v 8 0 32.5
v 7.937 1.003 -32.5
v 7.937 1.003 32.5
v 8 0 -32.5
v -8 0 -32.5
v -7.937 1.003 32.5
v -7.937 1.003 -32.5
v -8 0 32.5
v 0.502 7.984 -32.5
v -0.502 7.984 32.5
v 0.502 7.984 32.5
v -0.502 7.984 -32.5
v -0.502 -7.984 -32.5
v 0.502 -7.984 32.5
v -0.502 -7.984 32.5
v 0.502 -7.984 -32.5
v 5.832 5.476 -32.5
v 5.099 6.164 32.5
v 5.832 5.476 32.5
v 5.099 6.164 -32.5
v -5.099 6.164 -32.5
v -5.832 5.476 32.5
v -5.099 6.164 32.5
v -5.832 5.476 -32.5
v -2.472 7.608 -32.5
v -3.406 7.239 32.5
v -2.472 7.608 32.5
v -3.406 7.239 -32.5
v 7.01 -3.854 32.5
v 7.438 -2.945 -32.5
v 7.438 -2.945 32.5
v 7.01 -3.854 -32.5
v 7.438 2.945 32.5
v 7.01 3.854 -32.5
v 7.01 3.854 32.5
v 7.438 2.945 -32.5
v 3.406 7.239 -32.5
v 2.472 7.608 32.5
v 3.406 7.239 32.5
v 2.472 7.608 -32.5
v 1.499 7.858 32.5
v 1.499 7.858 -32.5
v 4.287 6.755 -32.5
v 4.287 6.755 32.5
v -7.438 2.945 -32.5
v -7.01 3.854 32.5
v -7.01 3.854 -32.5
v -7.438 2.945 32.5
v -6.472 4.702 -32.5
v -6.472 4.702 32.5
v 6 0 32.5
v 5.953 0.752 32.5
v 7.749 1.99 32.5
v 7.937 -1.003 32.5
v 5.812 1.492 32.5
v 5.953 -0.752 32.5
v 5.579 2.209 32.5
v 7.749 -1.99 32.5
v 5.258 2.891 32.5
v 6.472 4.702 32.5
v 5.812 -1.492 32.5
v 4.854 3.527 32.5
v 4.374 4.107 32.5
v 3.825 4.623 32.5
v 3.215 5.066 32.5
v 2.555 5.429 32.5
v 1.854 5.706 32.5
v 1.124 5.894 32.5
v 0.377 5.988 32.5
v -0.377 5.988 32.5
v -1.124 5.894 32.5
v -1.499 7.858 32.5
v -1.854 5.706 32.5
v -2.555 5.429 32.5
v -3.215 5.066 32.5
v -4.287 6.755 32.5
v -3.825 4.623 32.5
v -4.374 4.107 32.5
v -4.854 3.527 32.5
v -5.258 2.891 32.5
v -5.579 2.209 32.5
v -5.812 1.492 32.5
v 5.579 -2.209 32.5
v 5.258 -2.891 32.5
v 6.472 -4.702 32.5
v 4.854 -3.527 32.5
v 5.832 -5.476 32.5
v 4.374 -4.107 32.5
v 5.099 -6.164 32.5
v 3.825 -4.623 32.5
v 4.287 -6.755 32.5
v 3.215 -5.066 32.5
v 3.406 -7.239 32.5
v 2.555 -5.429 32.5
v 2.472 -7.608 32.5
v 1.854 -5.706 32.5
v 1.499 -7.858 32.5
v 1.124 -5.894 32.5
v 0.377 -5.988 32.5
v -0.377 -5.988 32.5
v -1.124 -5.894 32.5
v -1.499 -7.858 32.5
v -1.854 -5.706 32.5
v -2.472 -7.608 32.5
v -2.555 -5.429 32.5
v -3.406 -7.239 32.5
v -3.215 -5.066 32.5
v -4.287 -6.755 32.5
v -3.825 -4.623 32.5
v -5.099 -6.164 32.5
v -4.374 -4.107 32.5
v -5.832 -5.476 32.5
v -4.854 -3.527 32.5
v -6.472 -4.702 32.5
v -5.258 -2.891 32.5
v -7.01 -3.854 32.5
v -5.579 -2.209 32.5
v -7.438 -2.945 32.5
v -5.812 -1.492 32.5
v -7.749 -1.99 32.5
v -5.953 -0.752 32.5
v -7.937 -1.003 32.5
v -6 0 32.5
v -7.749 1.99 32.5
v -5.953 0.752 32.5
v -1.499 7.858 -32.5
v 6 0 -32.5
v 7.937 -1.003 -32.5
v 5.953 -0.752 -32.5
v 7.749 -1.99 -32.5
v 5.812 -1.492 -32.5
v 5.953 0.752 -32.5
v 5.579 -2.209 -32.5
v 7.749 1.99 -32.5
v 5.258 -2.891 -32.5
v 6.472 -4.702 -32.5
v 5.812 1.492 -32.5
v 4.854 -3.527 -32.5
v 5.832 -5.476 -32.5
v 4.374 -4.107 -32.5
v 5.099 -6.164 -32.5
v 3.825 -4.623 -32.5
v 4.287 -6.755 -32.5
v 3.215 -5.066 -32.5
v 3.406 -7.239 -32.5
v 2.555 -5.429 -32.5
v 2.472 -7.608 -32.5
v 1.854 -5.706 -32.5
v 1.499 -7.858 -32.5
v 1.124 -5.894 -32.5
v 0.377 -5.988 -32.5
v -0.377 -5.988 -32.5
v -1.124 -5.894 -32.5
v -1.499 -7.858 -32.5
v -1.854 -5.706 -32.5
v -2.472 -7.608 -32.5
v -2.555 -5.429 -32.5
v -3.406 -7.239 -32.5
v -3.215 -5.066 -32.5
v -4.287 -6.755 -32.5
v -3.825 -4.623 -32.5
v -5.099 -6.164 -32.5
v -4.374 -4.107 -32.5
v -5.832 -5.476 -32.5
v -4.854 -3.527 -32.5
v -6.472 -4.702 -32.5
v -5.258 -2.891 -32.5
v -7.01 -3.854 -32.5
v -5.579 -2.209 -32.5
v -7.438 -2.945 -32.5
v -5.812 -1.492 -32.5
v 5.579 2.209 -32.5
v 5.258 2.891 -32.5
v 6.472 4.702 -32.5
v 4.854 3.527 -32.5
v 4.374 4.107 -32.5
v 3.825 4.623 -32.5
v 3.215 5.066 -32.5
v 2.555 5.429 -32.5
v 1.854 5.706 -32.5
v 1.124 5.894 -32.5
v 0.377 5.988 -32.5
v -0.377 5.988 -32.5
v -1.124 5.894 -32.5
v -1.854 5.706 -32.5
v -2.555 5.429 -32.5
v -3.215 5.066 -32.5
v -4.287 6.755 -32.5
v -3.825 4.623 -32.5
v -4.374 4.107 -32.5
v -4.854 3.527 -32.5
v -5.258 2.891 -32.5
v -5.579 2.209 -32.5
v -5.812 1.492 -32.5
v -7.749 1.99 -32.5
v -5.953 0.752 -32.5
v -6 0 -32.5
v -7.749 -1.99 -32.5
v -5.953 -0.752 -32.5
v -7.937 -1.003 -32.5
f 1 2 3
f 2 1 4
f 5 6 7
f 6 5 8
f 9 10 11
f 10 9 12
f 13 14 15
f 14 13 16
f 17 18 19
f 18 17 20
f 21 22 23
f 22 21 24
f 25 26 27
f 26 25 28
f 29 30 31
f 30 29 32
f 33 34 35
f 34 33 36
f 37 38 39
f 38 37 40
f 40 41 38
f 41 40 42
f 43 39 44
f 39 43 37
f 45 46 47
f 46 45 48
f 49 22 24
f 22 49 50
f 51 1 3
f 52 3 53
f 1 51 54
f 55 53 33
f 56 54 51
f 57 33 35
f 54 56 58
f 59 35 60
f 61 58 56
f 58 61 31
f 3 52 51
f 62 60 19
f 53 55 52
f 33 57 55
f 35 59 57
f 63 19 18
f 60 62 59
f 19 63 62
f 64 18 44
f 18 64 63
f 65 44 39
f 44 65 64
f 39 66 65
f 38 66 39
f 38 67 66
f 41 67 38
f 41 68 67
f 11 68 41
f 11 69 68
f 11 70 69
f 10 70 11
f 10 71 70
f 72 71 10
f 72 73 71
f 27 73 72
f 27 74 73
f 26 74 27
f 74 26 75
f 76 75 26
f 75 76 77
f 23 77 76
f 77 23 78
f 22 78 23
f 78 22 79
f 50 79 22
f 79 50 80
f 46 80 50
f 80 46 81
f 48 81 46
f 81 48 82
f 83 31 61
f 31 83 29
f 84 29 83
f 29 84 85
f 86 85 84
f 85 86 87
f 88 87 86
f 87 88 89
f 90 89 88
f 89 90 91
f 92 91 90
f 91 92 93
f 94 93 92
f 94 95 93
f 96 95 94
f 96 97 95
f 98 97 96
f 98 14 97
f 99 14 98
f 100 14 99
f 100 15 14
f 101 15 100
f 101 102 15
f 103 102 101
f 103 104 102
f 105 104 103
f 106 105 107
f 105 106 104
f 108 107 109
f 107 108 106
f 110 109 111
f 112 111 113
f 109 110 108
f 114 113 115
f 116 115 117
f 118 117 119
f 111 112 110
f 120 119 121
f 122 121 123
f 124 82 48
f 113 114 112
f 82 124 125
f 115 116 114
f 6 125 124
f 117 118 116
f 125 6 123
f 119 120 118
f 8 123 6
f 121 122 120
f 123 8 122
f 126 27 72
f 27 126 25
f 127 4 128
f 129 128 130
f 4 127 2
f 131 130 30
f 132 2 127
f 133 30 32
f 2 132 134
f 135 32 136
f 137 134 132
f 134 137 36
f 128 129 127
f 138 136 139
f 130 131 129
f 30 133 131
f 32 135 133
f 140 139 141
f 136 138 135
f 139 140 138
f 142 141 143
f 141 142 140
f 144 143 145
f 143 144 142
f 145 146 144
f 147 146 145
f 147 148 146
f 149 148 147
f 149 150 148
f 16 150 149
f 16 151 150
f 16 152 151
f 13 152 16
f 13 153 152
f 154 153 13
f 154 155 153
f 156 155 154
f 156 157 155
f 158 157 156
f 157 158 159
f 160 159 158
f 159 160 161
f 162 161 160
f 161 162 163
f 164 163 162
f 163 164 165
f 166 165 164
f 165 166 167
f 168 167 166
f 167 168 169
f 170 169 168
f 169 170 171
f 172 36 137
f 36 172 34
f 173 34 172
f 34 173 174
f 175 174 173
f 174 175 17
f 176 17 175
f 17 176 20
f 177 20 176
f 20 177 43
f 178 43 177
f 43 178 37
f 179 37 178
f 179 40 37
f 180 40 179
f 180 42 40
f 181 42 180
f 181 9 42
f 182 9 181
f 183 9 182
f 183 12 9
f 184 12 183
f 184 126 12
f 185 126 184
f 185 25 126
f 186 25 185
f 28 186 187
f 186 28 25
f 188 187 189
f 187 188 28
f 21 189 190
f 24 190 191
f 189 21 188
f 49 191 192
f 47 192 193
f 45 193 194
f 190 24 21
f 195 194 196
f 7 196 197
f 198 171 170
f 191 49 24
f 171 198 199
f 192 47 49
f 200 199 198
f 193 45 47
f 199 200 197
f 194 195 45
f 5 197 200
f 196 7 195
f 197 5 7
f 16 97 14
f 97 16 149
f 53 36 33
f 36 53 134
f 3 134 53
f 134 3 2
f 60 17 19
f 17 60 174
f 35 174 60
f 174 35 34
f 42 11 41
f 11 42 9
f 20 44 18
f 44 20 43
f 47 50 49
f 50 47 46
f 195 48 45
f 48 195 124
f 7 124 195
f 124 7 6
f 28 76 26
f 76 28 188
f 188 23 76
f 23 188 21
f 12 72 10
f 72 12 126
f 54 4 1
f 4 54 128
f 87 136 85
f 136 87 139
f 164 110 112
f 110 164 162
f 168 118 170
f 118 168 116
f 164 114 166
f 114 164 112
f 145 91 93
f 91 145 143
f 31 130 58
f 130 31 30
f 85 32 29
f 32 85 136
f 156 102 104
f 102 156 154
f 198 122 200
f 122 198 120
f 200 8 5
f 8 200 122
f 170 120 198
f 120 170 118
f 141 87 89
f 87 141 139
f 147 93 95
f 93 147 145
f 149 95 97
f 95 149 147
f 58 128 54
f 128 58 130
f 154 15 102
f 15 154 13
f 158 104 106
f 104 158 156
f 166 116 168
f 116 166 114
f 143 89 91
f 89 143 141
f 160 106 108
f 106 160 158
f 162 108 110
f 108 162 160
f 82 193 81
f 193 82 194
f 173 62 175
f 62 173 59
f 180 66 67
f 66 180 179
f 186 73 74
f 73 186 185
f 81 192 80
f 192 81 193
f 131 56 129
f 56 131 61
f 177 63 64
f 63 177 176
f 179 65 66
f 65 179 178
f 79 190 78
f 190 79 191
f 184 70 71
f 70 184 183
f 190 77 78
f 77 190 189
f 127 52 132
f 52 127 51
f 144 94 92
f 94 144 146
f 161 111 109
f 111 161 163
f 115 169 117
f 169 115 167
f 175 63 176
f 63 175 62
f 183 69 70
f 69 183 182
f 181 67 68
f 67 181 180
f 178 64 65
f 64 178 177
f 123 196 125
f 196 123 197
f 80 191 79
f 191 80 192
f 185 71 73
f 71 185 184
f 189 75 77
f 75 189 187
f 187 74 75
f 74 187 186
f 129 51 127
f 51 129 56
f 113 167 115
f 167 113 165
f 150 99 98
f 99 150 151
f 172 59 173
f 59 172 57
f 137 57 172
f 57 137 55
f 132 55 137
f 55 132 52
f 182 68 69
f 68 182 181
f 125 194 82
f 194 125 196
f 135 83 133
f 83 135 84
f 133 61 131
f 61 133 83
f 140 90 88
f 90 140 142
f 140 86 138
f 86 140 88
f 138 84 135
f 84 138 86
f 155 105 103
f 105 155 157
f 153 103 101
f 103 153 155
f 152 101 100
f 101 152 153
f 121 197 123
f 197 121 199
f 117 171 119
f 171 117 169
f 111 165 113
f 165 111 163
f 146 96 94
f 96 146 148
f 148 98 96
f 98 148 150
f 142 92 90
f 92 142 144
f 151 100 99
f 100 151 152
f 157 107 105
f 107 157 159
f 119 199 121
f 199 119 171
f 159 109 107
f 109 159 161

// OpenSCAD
$fn = 50;


difference() {
	union() {
		translate(v = [0, 0, -32.5000000000]) {
			cylinder(h = 65, r = 8.0000000000);
		}
	}
	union() {
		translate(v = [0, 0, -100.0000000000]) {
			cylinder(h = 200, r = 6);
		}
	}
}
